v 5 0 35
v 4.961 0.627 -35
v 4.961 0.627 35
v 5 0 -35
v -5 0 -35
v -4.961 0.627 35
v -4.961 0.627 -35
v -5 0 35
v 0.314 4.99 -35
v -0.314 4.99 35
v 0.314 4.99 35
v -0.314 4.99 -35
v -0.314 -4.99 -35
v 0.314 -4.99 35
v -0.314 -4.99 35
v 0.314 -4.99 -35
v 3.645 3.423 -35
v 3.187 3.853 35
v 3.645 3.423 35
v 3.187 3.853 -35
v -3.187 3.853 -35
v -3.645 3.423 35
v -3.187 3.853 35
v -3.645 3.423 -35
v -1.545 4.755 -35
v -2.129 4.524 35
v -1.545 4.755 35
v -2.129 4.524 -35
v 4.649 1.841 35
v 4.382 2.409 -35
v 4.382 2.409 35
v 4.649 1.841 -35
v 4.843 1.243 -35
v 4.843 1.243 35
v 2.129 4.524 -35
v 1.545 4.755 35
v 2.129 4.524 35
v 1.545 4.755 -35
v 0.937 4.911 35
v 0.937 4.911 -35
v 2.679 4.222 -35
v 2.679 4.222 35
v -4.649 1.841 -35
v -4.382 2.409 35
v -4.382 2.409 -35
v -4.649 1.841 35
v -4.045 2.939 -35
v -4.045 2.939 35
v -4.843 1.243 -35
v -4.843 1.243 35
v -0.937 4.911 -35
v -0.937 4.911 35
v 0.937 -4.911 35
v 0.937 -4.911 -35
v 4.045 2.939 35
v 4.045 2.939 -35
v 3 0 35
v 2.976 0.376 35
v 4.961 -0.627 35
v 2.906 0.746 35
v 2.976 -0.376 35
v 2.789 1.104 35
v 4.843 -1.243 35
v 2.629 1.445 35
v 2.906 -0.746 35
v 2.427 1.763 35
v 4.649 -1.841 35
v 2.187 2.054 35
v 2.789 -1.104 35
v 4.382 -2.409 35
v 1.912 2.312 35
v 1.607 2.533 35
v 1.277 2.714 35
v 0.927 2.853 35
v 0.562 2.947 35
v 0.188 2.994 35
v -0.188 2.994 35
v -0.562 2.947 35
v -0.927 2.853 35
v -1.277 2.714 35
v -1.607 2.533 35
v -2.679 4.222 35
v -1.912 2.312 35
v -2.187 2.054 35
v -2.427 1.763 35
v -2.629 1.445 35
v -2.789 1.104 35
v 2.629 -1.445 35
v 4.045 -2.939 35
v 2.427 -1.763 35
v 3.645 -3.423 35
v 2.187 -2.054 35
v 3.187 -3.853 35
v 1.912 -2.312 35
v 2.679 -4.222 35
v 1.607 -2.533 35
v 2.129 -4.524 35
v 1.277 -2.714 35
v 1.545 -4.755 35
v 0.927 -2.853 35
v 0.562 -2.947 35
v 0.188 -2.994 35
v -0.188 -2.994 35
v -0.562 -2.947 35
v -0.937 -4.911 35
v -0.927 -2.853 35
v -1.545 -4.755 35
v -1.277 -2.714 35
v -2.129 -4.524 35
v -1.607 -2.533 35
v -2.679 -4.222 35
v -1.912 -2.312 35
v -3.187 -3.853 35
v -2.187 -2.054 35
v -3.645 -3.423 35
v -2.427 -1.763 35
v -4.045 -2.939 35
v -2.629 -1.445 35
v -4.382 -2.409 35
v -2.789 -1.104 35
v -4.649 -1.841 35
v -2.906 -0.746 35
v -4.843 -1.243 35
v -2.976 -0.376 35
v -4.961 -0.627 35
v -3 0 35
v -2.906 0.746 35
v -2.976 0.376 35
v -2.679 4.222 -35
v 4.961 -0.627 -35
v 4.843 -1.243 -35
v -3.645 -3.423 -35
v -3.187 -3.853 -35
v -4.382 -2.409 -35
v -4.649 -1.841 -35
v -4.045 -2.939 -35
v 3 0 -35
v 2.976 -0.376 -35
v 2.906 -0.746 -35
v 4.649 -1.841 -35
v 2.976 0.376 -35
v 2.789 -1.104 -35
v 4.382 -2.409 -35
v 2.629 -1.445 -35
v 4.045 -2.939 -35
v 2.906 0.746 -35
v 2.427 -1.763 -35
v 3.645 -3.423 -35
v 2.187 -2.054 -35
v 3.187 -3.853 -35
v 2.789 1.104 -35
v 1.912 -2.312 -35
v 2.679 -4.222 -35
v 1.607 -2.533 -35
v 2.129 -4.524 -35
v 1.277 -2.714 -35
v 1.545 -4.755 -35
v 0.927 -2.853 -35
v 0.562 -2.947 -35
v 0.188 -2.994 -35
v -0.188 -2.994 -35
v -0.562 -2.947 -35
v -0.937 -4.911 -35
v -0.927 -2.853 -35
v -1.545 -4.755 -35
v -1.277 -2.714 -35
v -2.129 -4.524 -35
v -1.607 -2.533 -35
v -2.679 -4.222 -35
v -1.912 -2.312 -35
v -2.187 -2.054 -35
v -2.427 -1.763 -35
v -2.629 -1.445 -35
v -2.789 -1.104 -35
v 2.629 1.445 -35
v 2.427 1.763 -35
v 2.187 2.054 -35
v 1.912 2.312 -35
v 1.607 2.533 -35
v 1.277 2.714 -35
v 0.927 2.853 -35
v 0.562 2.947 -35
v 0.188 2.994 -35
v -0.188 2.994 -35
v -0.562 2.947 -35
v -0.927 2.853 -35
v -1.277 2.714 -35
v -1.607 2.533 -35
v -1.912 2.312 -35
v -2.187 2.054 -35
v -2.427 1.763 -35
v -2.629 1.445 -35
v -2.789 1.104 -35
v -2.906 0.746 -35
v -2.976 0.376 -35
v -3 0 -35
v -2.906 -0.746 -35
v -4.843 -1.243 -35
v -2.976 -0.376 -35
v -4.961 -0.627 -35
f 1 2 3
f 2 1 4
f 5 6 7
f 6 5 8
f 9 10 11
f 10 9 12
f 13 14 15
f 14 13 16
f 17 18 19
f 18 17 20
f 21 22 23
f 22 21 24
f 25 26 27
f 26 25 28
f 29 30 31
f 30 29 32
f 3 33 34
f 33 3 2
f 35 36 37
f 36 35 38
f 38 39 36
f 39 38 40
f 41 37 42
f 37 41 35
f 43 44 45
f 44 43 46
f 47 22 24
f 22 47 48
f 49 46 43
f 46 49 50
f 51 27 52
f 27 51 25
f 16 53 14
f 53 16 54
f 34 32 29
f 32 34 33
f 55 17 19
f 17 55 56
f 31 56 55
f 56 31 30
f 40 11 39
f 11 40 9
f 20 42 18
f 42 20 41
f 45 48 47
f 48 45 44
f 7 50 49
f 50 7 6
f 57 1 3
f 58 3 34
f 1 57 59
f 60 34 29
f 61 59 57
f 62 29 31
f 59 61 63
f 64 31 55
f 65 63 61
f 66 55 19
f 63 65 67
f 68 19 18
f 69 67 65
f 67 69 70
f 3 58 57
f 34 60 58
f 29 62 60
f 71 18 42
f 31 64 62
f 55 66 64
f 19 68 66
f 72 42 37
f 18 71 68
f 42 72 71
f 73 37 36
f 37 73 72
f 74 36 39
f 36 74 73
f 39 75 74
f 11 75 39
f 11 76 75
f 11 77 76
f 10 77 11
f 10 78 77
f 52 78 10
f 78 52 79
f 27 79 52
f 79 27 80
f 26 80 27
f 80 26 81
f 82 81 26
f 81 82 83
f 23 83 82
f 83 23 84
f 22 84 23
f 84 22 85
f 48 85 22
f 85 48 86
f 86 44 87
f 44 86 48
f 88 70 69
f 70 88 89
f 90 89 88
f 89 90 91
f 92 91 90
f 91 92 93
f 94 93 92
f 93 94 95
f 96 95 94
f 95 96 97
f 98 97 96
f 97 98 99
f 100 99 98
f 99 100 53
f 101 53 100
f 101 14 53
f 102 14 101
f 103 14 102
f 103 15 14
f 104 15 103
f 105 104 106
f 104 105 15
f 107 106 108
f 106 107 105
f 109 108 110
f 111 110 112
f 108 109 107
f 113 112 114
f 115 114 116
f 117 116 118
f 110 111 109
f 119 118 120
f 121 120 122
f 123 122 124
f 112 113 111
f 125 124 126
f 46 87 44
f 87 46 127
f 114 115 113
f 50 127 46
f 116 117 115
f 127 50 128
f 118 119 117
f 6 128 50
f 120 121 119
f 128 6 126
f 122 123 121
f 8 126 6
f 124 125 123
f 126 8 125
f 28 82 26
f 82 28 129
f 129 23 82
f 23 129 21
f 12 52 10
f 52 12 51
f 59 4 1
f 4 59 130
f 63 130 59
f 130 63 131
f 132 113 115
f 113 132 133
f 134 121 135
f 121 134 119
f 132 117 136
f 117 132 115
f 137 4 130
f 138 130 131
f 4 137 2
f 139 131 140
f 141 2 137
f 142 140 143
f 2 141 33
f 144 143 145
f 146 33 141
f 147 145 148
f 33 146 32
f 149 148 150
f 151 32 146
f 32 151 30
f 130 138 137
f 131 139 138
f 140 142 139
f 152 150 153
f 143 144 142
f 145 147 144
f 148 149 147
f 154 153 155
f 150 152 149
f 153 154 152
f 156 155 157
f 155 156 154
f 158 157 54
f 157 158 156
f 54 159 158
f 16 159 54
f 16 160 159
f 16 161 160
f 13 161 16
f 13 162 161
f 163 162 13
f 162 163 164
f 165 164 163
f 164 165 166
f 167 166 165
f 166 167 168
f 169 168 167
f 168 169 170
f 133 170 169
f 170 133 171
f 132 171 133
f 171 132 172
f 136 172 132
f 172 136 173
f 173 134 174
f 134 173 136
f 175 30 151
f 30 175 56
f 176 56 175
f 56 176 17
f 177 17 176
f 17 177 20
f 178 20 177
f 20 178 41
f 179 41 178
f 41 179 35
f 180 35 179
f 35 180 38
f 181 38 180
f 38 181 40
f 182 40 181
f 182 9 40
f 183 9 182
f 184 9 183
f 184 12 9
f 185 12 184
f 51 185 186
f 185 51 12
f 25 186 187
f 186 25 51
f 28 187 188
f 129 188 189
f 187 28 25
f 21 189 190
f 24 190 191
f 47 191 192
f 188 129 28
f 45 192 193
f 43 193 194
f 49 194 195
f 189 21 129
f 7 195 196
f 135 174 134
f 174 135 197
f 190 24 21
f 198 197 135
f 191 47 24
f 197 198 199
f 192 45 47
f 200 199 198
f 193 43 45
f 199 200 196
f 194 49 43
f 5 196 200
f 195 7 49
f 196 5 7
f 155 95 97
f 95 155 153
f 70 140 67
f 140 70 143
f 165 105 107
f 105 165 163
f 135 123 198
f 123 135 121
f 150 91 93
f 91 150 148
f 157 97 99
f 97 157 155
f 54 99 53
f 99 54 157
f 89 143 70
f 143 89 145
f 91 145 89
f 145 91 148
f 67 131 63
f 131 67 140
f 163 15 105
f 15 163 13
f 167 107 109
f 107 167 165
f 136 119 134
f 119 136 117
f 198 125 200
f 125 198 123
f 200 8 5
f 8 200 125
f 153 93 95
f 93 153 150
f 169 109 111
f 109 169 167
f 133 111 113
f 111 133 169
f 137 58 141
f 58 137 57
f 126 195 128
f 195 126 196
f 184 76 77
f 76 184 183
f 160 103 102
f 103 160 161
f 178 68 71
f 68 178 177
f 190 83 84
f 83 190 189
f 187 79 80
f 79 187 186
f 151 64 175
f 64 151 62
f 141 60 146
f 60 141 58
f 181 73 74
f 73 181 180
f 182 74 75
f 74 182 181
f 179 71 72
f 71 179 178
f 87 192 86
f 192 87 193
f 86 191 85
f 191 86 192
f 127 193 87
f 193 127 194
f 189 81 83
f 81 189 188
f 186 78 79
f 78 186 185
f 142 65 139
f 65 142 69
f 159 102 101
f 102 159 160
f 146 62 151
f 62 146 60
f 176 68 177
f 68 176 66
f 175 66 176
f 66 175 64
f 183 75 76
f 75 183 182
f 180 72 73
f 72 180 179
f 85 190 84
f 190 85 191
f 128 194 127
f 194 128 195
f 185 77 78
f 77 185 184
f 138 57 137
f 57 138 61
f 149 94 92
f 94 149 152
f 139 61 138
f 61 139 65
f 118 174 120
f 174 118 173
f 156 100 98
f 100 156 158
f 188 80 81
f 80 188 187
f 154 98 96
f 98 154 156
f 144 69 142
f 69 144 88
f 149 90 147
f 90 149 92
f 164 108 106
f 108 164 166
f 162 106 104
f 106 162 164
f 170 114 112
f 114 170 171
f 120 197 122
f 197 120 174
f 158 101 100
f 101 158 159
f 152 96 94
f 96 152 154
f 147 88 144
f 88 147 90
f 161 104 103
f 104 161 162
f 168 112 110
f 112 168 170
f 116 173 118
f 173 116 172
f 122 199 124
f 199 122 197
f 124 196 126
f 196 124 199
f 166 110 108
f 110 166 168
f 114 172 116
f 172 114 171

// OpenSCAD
$fn = 50;


difference() {
	union() {
		translate(v = [0, 0, -35.0000000000]) {
			cylinder(h = 70, r = 5.0000000000);
		}
	}
	union() {
		translate(v = [0, 0, -100.0000000000]) {
			cylinder(h = 200, r = 3);
		}
	}
}
